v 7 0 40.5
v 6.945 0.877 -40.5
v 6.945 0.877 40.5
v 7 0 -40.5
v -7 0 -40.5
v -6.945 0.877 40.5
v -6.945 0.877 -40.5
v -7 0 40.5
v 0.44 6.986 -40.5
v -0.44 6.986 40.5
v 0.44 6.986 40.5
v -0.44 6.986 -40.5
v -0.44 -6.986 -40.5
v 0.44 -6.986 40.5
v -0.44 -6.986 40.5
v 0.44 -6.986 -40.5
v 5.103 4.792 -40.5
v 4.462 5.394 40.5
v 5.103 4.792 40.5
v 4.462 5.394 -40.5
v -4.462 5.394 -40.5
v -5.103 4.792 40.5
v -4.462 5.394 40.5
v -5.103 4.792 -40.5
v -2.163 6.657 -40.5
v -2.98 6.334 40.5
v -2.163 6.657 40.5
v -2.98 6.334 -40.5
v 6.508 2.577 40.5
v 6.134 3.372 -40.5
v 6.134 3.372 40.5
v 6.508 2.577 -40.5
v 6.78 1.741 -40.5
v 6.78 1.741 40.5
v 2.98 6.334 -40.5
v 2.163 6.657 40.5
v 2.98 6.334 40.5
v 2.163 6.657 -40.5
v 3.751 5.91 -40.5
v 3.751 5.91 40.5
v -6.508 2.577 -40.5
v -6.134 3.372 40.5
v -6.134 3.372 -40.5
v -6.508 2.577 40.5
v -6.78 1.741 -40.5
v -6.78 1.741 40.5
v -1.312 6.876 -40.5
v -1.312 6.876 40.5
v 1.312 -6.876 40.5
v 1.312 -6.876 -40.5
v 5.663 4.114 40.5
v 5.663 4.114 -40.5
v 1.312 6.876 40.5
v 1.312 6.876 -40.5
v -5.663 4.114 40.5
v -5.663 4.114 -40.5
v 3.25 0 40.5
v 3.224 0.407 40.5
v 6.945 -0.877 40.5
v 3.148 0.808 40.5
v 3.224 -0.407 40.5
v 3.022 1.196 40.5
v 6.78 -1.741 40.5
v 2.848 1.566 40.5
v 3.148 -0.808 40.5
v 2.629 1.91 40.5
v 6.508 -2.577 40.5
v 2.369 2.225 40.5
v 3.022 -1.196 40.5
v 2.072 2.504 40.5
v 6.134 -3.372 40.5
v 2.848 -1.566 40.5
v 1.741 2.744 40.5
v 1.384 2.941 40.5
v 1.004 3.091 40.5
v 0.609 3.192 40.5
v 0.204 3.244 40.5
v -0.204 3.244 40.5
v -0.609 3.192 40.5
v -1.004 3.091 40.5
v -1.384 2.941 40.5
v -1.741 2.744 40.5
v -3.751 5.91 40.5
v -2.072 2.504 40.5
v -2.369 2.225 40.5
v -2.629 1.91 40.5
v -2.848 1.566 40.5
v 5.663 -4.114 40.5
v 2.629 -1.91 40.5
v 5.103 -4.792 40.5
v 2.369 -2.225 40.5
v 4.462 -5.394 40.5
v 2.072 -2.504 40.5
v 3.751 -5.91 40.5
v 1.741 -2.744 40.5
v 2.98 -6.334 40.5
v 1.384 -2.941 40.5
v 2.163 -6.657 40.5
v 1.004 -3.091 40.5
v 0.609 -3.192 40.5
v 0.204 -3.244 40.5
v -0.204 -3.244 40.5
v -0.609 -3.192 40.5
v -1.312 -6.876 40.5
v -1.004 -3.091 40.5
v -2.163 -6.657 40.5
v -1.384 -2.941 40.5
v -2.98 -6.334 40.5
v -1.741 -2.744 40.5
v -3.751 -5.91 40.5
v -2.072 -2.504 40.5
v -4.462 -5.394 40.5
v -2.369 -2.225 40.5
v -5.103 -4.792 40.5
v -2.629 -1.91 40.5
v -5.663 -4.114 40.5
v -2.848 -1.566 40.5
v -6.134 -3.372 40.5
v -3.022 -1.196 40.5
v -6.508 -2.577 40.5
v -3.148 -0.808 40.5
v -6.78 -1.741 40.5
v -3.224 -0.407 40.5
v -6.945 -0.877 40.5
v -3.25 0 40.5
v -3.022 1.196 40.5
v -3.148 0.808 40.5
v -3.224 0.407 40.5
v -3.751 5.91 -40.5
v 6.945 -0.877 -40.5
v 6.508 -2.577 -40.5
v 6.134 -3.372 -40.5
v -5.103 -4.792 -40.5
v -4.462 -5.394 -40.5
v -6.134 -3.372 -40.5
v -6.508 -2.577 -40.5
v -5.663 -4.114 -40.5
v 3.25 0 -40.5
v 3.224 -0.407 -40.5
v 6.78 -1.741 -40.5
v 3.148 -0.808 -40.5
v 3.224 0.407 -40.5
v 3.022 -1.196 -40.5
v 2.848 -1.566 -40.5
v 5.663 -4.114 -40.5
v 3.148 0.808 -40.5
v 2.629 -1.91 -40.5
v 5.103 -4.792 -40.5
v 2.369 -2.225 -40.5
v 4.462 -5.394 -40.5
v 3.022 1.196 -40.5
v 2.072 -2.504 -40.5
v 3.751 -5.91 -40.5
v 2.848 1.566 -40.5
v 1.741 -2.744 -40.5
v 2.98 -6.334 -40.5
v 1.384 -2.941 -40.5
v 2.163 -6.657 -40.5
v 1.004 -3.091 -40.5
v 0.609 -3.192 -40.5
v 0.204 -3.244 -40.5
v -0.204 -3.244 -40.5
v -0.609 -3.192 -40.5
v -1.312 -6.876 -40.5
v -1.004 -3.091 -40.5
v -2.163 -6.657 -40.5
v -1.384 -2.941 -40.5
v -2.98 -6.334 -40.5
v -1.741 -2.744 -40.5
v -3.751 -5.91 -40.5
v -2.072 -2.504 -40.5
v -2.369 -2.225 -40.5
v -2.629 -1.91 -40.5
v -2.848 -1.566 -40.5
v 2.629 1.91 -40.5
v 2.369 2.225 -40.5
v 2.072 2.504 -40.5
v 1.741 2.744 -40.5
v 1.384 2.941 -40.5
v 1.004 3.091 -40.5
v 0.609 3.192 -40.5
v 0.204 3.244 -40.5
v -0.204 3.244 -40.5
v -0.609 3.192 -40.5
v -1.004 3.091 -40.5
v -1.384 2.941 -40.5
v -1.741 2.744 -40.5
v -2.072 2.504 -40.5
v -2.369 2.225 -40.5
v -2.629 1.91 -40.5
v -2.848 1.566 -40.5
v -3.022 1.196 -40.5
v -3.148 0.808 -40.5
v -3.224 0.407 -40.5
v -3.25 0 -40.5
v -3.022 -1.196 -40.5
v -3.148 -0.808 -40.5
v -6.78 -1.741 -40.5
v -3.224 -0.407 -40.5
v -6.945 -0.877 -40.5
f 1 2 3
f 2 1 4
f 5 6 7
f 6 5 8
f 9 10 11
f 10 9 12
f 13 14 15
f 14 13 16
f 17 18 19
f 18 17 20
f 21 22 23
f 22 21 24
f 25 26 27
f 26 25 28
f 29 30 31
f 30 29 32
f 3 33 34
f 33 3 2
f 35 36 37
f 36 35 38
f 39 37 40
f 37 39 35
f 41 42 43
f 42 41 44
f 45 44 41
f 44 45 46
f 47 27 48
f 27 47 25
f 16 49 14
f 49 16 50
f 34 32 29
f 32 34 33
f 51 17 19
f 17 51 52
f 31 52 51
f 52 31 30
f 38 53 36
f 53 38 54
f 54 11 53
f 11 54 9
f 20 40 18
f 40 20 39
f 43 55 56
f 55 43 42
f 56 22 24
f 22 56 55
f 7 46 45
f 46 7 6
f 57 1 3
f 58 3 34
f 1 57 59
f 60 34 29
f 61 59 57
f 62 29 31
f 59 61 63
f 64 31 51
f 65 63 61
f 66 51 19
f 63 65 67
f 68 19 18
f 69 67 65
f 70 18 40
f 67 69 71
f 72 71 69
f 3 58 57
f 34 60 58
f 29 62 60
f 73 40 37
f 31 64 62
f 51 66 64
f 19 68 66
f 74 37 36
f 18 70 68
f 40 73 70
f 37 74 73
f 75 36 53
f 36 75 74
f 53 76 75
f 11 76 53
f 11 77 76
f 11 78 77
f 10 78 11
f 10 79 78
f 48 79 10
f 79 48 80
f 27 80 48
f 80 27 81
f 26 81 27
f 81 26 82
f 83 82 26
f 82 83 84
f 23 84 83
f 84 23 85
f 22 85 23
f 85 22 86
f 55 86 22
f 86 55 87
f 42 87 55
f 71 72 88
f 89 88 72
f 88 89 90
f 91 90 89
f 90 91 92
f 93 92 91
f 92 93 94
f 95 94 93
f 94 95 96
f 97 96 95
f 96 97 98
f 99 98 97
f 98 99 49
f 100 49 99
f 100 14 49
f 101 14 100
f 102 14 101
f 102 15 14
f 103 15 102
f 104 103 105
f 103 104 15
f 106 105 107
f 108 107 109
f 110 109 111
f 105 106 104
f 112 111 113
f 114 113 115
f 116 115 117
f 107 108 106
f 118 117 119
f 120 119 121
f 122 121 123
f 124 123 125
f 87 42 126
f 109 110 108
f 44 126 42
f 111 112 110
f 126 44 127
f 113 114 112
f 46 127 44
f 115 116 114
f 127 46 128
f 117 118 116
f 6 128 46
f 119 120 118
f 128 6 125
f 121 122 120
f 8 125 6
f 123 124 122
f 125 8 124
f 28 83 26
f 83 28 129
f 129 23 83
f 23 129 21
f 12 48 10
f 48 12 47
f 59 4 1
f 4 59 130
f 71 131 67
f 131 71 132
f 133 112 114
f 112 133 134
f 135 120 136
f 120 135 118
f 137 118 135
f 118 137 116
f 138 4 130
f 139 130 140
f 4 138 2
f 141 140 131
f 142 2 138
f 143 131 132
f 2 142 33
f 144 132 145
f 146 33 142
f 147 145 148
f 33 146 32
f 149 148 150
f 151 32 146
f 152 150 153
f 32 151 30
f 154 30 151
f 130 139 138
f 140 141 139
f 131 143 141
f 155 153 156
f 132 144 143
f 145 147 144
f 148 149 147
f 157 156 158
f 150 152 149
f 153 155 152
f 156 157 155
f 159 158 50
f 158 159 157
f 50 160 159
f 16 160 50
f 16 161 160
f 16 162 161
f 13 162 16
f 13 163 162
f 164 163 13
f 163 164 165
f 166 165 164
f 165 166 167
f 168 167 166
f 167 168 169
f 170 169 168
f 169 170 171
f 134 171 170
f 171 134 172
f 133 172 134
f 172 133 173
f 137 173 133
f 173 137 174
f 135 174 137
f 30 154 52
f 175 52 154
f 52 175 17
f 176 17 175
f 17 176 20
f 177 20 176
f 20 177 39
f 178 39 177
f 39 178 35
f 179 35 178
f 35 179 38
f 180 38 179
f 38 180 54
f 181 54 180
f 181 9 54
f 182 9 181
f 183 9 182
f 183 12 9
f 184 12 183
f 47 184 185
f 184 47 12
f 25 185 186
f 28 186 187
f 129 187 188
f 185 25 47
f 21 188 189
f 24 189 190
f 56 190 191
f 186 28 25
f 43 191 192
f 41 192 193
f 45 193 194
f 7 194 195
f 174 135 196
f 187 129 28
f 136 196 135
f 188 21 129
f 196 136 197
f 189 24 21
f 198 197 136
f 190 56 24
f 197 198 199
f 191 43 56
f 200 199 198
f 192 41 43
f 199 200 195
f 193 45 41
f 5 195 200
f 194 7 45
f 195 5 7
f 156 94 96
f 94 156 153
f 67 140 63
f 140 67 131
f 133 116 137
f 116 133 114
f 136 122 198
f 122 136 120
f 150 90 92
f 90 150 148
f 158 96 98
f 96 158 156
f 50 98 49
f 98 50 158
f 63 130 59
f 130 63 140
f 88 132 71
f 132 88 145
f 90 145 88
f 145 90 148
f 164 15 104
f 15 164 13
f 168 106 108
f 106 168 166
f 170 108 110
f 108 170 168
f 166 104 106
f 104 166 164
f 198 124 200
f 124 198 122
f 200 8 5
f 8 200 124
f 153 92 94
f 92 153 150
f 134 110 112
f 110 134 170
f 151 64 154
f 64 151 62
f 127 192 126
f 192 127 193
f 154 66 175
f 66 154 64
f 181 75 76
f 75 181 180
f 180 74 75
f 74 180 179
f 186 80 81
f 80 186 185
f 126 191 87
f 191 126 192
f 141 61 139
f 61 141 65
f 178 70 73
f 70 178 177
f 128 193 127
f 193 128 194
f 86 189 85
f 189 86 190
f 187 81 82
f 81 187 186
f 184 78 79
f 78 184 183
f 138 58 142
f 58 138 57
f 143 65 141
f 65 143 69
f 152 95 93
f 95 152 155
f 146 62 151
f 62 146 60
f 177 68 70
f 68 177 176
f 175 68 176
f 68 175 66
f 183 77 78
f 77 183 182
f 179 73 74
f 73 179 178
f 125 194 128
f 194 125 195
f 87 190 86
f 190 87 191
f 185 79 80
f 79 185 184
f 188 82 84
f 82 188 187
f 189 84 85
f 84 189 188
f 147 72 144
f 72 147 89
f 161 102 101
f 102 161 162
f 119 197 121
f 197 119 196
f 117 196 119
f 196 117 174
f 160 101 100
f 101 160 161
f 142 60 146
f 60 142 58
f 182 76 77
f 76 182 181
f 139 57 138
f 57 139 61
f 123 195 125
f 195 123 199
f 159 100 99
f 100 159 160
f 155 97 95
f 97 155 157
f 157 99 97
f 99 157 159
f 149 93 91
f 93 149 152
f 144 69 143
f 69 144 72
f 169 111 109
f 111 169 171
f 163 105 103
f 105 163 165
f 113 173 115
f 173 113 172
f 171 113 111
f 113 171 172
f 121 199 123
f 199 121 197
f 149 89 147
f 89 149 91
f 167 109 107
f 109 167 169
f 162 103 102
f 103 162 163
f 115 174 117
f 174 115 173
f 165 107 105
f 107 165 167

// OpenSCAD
$fn = 50;


difference() {
	union() {
		translate(v = [0, 0, -40.5000000000]) {
			cylinder(h = 81, r = 7.0000000000);
		}
	}
	union() {
		translate(v = [0, 0, -100.0000000000]) {
			cylinder(h = 200, r = 3.2500000000);
		}
	}
}
